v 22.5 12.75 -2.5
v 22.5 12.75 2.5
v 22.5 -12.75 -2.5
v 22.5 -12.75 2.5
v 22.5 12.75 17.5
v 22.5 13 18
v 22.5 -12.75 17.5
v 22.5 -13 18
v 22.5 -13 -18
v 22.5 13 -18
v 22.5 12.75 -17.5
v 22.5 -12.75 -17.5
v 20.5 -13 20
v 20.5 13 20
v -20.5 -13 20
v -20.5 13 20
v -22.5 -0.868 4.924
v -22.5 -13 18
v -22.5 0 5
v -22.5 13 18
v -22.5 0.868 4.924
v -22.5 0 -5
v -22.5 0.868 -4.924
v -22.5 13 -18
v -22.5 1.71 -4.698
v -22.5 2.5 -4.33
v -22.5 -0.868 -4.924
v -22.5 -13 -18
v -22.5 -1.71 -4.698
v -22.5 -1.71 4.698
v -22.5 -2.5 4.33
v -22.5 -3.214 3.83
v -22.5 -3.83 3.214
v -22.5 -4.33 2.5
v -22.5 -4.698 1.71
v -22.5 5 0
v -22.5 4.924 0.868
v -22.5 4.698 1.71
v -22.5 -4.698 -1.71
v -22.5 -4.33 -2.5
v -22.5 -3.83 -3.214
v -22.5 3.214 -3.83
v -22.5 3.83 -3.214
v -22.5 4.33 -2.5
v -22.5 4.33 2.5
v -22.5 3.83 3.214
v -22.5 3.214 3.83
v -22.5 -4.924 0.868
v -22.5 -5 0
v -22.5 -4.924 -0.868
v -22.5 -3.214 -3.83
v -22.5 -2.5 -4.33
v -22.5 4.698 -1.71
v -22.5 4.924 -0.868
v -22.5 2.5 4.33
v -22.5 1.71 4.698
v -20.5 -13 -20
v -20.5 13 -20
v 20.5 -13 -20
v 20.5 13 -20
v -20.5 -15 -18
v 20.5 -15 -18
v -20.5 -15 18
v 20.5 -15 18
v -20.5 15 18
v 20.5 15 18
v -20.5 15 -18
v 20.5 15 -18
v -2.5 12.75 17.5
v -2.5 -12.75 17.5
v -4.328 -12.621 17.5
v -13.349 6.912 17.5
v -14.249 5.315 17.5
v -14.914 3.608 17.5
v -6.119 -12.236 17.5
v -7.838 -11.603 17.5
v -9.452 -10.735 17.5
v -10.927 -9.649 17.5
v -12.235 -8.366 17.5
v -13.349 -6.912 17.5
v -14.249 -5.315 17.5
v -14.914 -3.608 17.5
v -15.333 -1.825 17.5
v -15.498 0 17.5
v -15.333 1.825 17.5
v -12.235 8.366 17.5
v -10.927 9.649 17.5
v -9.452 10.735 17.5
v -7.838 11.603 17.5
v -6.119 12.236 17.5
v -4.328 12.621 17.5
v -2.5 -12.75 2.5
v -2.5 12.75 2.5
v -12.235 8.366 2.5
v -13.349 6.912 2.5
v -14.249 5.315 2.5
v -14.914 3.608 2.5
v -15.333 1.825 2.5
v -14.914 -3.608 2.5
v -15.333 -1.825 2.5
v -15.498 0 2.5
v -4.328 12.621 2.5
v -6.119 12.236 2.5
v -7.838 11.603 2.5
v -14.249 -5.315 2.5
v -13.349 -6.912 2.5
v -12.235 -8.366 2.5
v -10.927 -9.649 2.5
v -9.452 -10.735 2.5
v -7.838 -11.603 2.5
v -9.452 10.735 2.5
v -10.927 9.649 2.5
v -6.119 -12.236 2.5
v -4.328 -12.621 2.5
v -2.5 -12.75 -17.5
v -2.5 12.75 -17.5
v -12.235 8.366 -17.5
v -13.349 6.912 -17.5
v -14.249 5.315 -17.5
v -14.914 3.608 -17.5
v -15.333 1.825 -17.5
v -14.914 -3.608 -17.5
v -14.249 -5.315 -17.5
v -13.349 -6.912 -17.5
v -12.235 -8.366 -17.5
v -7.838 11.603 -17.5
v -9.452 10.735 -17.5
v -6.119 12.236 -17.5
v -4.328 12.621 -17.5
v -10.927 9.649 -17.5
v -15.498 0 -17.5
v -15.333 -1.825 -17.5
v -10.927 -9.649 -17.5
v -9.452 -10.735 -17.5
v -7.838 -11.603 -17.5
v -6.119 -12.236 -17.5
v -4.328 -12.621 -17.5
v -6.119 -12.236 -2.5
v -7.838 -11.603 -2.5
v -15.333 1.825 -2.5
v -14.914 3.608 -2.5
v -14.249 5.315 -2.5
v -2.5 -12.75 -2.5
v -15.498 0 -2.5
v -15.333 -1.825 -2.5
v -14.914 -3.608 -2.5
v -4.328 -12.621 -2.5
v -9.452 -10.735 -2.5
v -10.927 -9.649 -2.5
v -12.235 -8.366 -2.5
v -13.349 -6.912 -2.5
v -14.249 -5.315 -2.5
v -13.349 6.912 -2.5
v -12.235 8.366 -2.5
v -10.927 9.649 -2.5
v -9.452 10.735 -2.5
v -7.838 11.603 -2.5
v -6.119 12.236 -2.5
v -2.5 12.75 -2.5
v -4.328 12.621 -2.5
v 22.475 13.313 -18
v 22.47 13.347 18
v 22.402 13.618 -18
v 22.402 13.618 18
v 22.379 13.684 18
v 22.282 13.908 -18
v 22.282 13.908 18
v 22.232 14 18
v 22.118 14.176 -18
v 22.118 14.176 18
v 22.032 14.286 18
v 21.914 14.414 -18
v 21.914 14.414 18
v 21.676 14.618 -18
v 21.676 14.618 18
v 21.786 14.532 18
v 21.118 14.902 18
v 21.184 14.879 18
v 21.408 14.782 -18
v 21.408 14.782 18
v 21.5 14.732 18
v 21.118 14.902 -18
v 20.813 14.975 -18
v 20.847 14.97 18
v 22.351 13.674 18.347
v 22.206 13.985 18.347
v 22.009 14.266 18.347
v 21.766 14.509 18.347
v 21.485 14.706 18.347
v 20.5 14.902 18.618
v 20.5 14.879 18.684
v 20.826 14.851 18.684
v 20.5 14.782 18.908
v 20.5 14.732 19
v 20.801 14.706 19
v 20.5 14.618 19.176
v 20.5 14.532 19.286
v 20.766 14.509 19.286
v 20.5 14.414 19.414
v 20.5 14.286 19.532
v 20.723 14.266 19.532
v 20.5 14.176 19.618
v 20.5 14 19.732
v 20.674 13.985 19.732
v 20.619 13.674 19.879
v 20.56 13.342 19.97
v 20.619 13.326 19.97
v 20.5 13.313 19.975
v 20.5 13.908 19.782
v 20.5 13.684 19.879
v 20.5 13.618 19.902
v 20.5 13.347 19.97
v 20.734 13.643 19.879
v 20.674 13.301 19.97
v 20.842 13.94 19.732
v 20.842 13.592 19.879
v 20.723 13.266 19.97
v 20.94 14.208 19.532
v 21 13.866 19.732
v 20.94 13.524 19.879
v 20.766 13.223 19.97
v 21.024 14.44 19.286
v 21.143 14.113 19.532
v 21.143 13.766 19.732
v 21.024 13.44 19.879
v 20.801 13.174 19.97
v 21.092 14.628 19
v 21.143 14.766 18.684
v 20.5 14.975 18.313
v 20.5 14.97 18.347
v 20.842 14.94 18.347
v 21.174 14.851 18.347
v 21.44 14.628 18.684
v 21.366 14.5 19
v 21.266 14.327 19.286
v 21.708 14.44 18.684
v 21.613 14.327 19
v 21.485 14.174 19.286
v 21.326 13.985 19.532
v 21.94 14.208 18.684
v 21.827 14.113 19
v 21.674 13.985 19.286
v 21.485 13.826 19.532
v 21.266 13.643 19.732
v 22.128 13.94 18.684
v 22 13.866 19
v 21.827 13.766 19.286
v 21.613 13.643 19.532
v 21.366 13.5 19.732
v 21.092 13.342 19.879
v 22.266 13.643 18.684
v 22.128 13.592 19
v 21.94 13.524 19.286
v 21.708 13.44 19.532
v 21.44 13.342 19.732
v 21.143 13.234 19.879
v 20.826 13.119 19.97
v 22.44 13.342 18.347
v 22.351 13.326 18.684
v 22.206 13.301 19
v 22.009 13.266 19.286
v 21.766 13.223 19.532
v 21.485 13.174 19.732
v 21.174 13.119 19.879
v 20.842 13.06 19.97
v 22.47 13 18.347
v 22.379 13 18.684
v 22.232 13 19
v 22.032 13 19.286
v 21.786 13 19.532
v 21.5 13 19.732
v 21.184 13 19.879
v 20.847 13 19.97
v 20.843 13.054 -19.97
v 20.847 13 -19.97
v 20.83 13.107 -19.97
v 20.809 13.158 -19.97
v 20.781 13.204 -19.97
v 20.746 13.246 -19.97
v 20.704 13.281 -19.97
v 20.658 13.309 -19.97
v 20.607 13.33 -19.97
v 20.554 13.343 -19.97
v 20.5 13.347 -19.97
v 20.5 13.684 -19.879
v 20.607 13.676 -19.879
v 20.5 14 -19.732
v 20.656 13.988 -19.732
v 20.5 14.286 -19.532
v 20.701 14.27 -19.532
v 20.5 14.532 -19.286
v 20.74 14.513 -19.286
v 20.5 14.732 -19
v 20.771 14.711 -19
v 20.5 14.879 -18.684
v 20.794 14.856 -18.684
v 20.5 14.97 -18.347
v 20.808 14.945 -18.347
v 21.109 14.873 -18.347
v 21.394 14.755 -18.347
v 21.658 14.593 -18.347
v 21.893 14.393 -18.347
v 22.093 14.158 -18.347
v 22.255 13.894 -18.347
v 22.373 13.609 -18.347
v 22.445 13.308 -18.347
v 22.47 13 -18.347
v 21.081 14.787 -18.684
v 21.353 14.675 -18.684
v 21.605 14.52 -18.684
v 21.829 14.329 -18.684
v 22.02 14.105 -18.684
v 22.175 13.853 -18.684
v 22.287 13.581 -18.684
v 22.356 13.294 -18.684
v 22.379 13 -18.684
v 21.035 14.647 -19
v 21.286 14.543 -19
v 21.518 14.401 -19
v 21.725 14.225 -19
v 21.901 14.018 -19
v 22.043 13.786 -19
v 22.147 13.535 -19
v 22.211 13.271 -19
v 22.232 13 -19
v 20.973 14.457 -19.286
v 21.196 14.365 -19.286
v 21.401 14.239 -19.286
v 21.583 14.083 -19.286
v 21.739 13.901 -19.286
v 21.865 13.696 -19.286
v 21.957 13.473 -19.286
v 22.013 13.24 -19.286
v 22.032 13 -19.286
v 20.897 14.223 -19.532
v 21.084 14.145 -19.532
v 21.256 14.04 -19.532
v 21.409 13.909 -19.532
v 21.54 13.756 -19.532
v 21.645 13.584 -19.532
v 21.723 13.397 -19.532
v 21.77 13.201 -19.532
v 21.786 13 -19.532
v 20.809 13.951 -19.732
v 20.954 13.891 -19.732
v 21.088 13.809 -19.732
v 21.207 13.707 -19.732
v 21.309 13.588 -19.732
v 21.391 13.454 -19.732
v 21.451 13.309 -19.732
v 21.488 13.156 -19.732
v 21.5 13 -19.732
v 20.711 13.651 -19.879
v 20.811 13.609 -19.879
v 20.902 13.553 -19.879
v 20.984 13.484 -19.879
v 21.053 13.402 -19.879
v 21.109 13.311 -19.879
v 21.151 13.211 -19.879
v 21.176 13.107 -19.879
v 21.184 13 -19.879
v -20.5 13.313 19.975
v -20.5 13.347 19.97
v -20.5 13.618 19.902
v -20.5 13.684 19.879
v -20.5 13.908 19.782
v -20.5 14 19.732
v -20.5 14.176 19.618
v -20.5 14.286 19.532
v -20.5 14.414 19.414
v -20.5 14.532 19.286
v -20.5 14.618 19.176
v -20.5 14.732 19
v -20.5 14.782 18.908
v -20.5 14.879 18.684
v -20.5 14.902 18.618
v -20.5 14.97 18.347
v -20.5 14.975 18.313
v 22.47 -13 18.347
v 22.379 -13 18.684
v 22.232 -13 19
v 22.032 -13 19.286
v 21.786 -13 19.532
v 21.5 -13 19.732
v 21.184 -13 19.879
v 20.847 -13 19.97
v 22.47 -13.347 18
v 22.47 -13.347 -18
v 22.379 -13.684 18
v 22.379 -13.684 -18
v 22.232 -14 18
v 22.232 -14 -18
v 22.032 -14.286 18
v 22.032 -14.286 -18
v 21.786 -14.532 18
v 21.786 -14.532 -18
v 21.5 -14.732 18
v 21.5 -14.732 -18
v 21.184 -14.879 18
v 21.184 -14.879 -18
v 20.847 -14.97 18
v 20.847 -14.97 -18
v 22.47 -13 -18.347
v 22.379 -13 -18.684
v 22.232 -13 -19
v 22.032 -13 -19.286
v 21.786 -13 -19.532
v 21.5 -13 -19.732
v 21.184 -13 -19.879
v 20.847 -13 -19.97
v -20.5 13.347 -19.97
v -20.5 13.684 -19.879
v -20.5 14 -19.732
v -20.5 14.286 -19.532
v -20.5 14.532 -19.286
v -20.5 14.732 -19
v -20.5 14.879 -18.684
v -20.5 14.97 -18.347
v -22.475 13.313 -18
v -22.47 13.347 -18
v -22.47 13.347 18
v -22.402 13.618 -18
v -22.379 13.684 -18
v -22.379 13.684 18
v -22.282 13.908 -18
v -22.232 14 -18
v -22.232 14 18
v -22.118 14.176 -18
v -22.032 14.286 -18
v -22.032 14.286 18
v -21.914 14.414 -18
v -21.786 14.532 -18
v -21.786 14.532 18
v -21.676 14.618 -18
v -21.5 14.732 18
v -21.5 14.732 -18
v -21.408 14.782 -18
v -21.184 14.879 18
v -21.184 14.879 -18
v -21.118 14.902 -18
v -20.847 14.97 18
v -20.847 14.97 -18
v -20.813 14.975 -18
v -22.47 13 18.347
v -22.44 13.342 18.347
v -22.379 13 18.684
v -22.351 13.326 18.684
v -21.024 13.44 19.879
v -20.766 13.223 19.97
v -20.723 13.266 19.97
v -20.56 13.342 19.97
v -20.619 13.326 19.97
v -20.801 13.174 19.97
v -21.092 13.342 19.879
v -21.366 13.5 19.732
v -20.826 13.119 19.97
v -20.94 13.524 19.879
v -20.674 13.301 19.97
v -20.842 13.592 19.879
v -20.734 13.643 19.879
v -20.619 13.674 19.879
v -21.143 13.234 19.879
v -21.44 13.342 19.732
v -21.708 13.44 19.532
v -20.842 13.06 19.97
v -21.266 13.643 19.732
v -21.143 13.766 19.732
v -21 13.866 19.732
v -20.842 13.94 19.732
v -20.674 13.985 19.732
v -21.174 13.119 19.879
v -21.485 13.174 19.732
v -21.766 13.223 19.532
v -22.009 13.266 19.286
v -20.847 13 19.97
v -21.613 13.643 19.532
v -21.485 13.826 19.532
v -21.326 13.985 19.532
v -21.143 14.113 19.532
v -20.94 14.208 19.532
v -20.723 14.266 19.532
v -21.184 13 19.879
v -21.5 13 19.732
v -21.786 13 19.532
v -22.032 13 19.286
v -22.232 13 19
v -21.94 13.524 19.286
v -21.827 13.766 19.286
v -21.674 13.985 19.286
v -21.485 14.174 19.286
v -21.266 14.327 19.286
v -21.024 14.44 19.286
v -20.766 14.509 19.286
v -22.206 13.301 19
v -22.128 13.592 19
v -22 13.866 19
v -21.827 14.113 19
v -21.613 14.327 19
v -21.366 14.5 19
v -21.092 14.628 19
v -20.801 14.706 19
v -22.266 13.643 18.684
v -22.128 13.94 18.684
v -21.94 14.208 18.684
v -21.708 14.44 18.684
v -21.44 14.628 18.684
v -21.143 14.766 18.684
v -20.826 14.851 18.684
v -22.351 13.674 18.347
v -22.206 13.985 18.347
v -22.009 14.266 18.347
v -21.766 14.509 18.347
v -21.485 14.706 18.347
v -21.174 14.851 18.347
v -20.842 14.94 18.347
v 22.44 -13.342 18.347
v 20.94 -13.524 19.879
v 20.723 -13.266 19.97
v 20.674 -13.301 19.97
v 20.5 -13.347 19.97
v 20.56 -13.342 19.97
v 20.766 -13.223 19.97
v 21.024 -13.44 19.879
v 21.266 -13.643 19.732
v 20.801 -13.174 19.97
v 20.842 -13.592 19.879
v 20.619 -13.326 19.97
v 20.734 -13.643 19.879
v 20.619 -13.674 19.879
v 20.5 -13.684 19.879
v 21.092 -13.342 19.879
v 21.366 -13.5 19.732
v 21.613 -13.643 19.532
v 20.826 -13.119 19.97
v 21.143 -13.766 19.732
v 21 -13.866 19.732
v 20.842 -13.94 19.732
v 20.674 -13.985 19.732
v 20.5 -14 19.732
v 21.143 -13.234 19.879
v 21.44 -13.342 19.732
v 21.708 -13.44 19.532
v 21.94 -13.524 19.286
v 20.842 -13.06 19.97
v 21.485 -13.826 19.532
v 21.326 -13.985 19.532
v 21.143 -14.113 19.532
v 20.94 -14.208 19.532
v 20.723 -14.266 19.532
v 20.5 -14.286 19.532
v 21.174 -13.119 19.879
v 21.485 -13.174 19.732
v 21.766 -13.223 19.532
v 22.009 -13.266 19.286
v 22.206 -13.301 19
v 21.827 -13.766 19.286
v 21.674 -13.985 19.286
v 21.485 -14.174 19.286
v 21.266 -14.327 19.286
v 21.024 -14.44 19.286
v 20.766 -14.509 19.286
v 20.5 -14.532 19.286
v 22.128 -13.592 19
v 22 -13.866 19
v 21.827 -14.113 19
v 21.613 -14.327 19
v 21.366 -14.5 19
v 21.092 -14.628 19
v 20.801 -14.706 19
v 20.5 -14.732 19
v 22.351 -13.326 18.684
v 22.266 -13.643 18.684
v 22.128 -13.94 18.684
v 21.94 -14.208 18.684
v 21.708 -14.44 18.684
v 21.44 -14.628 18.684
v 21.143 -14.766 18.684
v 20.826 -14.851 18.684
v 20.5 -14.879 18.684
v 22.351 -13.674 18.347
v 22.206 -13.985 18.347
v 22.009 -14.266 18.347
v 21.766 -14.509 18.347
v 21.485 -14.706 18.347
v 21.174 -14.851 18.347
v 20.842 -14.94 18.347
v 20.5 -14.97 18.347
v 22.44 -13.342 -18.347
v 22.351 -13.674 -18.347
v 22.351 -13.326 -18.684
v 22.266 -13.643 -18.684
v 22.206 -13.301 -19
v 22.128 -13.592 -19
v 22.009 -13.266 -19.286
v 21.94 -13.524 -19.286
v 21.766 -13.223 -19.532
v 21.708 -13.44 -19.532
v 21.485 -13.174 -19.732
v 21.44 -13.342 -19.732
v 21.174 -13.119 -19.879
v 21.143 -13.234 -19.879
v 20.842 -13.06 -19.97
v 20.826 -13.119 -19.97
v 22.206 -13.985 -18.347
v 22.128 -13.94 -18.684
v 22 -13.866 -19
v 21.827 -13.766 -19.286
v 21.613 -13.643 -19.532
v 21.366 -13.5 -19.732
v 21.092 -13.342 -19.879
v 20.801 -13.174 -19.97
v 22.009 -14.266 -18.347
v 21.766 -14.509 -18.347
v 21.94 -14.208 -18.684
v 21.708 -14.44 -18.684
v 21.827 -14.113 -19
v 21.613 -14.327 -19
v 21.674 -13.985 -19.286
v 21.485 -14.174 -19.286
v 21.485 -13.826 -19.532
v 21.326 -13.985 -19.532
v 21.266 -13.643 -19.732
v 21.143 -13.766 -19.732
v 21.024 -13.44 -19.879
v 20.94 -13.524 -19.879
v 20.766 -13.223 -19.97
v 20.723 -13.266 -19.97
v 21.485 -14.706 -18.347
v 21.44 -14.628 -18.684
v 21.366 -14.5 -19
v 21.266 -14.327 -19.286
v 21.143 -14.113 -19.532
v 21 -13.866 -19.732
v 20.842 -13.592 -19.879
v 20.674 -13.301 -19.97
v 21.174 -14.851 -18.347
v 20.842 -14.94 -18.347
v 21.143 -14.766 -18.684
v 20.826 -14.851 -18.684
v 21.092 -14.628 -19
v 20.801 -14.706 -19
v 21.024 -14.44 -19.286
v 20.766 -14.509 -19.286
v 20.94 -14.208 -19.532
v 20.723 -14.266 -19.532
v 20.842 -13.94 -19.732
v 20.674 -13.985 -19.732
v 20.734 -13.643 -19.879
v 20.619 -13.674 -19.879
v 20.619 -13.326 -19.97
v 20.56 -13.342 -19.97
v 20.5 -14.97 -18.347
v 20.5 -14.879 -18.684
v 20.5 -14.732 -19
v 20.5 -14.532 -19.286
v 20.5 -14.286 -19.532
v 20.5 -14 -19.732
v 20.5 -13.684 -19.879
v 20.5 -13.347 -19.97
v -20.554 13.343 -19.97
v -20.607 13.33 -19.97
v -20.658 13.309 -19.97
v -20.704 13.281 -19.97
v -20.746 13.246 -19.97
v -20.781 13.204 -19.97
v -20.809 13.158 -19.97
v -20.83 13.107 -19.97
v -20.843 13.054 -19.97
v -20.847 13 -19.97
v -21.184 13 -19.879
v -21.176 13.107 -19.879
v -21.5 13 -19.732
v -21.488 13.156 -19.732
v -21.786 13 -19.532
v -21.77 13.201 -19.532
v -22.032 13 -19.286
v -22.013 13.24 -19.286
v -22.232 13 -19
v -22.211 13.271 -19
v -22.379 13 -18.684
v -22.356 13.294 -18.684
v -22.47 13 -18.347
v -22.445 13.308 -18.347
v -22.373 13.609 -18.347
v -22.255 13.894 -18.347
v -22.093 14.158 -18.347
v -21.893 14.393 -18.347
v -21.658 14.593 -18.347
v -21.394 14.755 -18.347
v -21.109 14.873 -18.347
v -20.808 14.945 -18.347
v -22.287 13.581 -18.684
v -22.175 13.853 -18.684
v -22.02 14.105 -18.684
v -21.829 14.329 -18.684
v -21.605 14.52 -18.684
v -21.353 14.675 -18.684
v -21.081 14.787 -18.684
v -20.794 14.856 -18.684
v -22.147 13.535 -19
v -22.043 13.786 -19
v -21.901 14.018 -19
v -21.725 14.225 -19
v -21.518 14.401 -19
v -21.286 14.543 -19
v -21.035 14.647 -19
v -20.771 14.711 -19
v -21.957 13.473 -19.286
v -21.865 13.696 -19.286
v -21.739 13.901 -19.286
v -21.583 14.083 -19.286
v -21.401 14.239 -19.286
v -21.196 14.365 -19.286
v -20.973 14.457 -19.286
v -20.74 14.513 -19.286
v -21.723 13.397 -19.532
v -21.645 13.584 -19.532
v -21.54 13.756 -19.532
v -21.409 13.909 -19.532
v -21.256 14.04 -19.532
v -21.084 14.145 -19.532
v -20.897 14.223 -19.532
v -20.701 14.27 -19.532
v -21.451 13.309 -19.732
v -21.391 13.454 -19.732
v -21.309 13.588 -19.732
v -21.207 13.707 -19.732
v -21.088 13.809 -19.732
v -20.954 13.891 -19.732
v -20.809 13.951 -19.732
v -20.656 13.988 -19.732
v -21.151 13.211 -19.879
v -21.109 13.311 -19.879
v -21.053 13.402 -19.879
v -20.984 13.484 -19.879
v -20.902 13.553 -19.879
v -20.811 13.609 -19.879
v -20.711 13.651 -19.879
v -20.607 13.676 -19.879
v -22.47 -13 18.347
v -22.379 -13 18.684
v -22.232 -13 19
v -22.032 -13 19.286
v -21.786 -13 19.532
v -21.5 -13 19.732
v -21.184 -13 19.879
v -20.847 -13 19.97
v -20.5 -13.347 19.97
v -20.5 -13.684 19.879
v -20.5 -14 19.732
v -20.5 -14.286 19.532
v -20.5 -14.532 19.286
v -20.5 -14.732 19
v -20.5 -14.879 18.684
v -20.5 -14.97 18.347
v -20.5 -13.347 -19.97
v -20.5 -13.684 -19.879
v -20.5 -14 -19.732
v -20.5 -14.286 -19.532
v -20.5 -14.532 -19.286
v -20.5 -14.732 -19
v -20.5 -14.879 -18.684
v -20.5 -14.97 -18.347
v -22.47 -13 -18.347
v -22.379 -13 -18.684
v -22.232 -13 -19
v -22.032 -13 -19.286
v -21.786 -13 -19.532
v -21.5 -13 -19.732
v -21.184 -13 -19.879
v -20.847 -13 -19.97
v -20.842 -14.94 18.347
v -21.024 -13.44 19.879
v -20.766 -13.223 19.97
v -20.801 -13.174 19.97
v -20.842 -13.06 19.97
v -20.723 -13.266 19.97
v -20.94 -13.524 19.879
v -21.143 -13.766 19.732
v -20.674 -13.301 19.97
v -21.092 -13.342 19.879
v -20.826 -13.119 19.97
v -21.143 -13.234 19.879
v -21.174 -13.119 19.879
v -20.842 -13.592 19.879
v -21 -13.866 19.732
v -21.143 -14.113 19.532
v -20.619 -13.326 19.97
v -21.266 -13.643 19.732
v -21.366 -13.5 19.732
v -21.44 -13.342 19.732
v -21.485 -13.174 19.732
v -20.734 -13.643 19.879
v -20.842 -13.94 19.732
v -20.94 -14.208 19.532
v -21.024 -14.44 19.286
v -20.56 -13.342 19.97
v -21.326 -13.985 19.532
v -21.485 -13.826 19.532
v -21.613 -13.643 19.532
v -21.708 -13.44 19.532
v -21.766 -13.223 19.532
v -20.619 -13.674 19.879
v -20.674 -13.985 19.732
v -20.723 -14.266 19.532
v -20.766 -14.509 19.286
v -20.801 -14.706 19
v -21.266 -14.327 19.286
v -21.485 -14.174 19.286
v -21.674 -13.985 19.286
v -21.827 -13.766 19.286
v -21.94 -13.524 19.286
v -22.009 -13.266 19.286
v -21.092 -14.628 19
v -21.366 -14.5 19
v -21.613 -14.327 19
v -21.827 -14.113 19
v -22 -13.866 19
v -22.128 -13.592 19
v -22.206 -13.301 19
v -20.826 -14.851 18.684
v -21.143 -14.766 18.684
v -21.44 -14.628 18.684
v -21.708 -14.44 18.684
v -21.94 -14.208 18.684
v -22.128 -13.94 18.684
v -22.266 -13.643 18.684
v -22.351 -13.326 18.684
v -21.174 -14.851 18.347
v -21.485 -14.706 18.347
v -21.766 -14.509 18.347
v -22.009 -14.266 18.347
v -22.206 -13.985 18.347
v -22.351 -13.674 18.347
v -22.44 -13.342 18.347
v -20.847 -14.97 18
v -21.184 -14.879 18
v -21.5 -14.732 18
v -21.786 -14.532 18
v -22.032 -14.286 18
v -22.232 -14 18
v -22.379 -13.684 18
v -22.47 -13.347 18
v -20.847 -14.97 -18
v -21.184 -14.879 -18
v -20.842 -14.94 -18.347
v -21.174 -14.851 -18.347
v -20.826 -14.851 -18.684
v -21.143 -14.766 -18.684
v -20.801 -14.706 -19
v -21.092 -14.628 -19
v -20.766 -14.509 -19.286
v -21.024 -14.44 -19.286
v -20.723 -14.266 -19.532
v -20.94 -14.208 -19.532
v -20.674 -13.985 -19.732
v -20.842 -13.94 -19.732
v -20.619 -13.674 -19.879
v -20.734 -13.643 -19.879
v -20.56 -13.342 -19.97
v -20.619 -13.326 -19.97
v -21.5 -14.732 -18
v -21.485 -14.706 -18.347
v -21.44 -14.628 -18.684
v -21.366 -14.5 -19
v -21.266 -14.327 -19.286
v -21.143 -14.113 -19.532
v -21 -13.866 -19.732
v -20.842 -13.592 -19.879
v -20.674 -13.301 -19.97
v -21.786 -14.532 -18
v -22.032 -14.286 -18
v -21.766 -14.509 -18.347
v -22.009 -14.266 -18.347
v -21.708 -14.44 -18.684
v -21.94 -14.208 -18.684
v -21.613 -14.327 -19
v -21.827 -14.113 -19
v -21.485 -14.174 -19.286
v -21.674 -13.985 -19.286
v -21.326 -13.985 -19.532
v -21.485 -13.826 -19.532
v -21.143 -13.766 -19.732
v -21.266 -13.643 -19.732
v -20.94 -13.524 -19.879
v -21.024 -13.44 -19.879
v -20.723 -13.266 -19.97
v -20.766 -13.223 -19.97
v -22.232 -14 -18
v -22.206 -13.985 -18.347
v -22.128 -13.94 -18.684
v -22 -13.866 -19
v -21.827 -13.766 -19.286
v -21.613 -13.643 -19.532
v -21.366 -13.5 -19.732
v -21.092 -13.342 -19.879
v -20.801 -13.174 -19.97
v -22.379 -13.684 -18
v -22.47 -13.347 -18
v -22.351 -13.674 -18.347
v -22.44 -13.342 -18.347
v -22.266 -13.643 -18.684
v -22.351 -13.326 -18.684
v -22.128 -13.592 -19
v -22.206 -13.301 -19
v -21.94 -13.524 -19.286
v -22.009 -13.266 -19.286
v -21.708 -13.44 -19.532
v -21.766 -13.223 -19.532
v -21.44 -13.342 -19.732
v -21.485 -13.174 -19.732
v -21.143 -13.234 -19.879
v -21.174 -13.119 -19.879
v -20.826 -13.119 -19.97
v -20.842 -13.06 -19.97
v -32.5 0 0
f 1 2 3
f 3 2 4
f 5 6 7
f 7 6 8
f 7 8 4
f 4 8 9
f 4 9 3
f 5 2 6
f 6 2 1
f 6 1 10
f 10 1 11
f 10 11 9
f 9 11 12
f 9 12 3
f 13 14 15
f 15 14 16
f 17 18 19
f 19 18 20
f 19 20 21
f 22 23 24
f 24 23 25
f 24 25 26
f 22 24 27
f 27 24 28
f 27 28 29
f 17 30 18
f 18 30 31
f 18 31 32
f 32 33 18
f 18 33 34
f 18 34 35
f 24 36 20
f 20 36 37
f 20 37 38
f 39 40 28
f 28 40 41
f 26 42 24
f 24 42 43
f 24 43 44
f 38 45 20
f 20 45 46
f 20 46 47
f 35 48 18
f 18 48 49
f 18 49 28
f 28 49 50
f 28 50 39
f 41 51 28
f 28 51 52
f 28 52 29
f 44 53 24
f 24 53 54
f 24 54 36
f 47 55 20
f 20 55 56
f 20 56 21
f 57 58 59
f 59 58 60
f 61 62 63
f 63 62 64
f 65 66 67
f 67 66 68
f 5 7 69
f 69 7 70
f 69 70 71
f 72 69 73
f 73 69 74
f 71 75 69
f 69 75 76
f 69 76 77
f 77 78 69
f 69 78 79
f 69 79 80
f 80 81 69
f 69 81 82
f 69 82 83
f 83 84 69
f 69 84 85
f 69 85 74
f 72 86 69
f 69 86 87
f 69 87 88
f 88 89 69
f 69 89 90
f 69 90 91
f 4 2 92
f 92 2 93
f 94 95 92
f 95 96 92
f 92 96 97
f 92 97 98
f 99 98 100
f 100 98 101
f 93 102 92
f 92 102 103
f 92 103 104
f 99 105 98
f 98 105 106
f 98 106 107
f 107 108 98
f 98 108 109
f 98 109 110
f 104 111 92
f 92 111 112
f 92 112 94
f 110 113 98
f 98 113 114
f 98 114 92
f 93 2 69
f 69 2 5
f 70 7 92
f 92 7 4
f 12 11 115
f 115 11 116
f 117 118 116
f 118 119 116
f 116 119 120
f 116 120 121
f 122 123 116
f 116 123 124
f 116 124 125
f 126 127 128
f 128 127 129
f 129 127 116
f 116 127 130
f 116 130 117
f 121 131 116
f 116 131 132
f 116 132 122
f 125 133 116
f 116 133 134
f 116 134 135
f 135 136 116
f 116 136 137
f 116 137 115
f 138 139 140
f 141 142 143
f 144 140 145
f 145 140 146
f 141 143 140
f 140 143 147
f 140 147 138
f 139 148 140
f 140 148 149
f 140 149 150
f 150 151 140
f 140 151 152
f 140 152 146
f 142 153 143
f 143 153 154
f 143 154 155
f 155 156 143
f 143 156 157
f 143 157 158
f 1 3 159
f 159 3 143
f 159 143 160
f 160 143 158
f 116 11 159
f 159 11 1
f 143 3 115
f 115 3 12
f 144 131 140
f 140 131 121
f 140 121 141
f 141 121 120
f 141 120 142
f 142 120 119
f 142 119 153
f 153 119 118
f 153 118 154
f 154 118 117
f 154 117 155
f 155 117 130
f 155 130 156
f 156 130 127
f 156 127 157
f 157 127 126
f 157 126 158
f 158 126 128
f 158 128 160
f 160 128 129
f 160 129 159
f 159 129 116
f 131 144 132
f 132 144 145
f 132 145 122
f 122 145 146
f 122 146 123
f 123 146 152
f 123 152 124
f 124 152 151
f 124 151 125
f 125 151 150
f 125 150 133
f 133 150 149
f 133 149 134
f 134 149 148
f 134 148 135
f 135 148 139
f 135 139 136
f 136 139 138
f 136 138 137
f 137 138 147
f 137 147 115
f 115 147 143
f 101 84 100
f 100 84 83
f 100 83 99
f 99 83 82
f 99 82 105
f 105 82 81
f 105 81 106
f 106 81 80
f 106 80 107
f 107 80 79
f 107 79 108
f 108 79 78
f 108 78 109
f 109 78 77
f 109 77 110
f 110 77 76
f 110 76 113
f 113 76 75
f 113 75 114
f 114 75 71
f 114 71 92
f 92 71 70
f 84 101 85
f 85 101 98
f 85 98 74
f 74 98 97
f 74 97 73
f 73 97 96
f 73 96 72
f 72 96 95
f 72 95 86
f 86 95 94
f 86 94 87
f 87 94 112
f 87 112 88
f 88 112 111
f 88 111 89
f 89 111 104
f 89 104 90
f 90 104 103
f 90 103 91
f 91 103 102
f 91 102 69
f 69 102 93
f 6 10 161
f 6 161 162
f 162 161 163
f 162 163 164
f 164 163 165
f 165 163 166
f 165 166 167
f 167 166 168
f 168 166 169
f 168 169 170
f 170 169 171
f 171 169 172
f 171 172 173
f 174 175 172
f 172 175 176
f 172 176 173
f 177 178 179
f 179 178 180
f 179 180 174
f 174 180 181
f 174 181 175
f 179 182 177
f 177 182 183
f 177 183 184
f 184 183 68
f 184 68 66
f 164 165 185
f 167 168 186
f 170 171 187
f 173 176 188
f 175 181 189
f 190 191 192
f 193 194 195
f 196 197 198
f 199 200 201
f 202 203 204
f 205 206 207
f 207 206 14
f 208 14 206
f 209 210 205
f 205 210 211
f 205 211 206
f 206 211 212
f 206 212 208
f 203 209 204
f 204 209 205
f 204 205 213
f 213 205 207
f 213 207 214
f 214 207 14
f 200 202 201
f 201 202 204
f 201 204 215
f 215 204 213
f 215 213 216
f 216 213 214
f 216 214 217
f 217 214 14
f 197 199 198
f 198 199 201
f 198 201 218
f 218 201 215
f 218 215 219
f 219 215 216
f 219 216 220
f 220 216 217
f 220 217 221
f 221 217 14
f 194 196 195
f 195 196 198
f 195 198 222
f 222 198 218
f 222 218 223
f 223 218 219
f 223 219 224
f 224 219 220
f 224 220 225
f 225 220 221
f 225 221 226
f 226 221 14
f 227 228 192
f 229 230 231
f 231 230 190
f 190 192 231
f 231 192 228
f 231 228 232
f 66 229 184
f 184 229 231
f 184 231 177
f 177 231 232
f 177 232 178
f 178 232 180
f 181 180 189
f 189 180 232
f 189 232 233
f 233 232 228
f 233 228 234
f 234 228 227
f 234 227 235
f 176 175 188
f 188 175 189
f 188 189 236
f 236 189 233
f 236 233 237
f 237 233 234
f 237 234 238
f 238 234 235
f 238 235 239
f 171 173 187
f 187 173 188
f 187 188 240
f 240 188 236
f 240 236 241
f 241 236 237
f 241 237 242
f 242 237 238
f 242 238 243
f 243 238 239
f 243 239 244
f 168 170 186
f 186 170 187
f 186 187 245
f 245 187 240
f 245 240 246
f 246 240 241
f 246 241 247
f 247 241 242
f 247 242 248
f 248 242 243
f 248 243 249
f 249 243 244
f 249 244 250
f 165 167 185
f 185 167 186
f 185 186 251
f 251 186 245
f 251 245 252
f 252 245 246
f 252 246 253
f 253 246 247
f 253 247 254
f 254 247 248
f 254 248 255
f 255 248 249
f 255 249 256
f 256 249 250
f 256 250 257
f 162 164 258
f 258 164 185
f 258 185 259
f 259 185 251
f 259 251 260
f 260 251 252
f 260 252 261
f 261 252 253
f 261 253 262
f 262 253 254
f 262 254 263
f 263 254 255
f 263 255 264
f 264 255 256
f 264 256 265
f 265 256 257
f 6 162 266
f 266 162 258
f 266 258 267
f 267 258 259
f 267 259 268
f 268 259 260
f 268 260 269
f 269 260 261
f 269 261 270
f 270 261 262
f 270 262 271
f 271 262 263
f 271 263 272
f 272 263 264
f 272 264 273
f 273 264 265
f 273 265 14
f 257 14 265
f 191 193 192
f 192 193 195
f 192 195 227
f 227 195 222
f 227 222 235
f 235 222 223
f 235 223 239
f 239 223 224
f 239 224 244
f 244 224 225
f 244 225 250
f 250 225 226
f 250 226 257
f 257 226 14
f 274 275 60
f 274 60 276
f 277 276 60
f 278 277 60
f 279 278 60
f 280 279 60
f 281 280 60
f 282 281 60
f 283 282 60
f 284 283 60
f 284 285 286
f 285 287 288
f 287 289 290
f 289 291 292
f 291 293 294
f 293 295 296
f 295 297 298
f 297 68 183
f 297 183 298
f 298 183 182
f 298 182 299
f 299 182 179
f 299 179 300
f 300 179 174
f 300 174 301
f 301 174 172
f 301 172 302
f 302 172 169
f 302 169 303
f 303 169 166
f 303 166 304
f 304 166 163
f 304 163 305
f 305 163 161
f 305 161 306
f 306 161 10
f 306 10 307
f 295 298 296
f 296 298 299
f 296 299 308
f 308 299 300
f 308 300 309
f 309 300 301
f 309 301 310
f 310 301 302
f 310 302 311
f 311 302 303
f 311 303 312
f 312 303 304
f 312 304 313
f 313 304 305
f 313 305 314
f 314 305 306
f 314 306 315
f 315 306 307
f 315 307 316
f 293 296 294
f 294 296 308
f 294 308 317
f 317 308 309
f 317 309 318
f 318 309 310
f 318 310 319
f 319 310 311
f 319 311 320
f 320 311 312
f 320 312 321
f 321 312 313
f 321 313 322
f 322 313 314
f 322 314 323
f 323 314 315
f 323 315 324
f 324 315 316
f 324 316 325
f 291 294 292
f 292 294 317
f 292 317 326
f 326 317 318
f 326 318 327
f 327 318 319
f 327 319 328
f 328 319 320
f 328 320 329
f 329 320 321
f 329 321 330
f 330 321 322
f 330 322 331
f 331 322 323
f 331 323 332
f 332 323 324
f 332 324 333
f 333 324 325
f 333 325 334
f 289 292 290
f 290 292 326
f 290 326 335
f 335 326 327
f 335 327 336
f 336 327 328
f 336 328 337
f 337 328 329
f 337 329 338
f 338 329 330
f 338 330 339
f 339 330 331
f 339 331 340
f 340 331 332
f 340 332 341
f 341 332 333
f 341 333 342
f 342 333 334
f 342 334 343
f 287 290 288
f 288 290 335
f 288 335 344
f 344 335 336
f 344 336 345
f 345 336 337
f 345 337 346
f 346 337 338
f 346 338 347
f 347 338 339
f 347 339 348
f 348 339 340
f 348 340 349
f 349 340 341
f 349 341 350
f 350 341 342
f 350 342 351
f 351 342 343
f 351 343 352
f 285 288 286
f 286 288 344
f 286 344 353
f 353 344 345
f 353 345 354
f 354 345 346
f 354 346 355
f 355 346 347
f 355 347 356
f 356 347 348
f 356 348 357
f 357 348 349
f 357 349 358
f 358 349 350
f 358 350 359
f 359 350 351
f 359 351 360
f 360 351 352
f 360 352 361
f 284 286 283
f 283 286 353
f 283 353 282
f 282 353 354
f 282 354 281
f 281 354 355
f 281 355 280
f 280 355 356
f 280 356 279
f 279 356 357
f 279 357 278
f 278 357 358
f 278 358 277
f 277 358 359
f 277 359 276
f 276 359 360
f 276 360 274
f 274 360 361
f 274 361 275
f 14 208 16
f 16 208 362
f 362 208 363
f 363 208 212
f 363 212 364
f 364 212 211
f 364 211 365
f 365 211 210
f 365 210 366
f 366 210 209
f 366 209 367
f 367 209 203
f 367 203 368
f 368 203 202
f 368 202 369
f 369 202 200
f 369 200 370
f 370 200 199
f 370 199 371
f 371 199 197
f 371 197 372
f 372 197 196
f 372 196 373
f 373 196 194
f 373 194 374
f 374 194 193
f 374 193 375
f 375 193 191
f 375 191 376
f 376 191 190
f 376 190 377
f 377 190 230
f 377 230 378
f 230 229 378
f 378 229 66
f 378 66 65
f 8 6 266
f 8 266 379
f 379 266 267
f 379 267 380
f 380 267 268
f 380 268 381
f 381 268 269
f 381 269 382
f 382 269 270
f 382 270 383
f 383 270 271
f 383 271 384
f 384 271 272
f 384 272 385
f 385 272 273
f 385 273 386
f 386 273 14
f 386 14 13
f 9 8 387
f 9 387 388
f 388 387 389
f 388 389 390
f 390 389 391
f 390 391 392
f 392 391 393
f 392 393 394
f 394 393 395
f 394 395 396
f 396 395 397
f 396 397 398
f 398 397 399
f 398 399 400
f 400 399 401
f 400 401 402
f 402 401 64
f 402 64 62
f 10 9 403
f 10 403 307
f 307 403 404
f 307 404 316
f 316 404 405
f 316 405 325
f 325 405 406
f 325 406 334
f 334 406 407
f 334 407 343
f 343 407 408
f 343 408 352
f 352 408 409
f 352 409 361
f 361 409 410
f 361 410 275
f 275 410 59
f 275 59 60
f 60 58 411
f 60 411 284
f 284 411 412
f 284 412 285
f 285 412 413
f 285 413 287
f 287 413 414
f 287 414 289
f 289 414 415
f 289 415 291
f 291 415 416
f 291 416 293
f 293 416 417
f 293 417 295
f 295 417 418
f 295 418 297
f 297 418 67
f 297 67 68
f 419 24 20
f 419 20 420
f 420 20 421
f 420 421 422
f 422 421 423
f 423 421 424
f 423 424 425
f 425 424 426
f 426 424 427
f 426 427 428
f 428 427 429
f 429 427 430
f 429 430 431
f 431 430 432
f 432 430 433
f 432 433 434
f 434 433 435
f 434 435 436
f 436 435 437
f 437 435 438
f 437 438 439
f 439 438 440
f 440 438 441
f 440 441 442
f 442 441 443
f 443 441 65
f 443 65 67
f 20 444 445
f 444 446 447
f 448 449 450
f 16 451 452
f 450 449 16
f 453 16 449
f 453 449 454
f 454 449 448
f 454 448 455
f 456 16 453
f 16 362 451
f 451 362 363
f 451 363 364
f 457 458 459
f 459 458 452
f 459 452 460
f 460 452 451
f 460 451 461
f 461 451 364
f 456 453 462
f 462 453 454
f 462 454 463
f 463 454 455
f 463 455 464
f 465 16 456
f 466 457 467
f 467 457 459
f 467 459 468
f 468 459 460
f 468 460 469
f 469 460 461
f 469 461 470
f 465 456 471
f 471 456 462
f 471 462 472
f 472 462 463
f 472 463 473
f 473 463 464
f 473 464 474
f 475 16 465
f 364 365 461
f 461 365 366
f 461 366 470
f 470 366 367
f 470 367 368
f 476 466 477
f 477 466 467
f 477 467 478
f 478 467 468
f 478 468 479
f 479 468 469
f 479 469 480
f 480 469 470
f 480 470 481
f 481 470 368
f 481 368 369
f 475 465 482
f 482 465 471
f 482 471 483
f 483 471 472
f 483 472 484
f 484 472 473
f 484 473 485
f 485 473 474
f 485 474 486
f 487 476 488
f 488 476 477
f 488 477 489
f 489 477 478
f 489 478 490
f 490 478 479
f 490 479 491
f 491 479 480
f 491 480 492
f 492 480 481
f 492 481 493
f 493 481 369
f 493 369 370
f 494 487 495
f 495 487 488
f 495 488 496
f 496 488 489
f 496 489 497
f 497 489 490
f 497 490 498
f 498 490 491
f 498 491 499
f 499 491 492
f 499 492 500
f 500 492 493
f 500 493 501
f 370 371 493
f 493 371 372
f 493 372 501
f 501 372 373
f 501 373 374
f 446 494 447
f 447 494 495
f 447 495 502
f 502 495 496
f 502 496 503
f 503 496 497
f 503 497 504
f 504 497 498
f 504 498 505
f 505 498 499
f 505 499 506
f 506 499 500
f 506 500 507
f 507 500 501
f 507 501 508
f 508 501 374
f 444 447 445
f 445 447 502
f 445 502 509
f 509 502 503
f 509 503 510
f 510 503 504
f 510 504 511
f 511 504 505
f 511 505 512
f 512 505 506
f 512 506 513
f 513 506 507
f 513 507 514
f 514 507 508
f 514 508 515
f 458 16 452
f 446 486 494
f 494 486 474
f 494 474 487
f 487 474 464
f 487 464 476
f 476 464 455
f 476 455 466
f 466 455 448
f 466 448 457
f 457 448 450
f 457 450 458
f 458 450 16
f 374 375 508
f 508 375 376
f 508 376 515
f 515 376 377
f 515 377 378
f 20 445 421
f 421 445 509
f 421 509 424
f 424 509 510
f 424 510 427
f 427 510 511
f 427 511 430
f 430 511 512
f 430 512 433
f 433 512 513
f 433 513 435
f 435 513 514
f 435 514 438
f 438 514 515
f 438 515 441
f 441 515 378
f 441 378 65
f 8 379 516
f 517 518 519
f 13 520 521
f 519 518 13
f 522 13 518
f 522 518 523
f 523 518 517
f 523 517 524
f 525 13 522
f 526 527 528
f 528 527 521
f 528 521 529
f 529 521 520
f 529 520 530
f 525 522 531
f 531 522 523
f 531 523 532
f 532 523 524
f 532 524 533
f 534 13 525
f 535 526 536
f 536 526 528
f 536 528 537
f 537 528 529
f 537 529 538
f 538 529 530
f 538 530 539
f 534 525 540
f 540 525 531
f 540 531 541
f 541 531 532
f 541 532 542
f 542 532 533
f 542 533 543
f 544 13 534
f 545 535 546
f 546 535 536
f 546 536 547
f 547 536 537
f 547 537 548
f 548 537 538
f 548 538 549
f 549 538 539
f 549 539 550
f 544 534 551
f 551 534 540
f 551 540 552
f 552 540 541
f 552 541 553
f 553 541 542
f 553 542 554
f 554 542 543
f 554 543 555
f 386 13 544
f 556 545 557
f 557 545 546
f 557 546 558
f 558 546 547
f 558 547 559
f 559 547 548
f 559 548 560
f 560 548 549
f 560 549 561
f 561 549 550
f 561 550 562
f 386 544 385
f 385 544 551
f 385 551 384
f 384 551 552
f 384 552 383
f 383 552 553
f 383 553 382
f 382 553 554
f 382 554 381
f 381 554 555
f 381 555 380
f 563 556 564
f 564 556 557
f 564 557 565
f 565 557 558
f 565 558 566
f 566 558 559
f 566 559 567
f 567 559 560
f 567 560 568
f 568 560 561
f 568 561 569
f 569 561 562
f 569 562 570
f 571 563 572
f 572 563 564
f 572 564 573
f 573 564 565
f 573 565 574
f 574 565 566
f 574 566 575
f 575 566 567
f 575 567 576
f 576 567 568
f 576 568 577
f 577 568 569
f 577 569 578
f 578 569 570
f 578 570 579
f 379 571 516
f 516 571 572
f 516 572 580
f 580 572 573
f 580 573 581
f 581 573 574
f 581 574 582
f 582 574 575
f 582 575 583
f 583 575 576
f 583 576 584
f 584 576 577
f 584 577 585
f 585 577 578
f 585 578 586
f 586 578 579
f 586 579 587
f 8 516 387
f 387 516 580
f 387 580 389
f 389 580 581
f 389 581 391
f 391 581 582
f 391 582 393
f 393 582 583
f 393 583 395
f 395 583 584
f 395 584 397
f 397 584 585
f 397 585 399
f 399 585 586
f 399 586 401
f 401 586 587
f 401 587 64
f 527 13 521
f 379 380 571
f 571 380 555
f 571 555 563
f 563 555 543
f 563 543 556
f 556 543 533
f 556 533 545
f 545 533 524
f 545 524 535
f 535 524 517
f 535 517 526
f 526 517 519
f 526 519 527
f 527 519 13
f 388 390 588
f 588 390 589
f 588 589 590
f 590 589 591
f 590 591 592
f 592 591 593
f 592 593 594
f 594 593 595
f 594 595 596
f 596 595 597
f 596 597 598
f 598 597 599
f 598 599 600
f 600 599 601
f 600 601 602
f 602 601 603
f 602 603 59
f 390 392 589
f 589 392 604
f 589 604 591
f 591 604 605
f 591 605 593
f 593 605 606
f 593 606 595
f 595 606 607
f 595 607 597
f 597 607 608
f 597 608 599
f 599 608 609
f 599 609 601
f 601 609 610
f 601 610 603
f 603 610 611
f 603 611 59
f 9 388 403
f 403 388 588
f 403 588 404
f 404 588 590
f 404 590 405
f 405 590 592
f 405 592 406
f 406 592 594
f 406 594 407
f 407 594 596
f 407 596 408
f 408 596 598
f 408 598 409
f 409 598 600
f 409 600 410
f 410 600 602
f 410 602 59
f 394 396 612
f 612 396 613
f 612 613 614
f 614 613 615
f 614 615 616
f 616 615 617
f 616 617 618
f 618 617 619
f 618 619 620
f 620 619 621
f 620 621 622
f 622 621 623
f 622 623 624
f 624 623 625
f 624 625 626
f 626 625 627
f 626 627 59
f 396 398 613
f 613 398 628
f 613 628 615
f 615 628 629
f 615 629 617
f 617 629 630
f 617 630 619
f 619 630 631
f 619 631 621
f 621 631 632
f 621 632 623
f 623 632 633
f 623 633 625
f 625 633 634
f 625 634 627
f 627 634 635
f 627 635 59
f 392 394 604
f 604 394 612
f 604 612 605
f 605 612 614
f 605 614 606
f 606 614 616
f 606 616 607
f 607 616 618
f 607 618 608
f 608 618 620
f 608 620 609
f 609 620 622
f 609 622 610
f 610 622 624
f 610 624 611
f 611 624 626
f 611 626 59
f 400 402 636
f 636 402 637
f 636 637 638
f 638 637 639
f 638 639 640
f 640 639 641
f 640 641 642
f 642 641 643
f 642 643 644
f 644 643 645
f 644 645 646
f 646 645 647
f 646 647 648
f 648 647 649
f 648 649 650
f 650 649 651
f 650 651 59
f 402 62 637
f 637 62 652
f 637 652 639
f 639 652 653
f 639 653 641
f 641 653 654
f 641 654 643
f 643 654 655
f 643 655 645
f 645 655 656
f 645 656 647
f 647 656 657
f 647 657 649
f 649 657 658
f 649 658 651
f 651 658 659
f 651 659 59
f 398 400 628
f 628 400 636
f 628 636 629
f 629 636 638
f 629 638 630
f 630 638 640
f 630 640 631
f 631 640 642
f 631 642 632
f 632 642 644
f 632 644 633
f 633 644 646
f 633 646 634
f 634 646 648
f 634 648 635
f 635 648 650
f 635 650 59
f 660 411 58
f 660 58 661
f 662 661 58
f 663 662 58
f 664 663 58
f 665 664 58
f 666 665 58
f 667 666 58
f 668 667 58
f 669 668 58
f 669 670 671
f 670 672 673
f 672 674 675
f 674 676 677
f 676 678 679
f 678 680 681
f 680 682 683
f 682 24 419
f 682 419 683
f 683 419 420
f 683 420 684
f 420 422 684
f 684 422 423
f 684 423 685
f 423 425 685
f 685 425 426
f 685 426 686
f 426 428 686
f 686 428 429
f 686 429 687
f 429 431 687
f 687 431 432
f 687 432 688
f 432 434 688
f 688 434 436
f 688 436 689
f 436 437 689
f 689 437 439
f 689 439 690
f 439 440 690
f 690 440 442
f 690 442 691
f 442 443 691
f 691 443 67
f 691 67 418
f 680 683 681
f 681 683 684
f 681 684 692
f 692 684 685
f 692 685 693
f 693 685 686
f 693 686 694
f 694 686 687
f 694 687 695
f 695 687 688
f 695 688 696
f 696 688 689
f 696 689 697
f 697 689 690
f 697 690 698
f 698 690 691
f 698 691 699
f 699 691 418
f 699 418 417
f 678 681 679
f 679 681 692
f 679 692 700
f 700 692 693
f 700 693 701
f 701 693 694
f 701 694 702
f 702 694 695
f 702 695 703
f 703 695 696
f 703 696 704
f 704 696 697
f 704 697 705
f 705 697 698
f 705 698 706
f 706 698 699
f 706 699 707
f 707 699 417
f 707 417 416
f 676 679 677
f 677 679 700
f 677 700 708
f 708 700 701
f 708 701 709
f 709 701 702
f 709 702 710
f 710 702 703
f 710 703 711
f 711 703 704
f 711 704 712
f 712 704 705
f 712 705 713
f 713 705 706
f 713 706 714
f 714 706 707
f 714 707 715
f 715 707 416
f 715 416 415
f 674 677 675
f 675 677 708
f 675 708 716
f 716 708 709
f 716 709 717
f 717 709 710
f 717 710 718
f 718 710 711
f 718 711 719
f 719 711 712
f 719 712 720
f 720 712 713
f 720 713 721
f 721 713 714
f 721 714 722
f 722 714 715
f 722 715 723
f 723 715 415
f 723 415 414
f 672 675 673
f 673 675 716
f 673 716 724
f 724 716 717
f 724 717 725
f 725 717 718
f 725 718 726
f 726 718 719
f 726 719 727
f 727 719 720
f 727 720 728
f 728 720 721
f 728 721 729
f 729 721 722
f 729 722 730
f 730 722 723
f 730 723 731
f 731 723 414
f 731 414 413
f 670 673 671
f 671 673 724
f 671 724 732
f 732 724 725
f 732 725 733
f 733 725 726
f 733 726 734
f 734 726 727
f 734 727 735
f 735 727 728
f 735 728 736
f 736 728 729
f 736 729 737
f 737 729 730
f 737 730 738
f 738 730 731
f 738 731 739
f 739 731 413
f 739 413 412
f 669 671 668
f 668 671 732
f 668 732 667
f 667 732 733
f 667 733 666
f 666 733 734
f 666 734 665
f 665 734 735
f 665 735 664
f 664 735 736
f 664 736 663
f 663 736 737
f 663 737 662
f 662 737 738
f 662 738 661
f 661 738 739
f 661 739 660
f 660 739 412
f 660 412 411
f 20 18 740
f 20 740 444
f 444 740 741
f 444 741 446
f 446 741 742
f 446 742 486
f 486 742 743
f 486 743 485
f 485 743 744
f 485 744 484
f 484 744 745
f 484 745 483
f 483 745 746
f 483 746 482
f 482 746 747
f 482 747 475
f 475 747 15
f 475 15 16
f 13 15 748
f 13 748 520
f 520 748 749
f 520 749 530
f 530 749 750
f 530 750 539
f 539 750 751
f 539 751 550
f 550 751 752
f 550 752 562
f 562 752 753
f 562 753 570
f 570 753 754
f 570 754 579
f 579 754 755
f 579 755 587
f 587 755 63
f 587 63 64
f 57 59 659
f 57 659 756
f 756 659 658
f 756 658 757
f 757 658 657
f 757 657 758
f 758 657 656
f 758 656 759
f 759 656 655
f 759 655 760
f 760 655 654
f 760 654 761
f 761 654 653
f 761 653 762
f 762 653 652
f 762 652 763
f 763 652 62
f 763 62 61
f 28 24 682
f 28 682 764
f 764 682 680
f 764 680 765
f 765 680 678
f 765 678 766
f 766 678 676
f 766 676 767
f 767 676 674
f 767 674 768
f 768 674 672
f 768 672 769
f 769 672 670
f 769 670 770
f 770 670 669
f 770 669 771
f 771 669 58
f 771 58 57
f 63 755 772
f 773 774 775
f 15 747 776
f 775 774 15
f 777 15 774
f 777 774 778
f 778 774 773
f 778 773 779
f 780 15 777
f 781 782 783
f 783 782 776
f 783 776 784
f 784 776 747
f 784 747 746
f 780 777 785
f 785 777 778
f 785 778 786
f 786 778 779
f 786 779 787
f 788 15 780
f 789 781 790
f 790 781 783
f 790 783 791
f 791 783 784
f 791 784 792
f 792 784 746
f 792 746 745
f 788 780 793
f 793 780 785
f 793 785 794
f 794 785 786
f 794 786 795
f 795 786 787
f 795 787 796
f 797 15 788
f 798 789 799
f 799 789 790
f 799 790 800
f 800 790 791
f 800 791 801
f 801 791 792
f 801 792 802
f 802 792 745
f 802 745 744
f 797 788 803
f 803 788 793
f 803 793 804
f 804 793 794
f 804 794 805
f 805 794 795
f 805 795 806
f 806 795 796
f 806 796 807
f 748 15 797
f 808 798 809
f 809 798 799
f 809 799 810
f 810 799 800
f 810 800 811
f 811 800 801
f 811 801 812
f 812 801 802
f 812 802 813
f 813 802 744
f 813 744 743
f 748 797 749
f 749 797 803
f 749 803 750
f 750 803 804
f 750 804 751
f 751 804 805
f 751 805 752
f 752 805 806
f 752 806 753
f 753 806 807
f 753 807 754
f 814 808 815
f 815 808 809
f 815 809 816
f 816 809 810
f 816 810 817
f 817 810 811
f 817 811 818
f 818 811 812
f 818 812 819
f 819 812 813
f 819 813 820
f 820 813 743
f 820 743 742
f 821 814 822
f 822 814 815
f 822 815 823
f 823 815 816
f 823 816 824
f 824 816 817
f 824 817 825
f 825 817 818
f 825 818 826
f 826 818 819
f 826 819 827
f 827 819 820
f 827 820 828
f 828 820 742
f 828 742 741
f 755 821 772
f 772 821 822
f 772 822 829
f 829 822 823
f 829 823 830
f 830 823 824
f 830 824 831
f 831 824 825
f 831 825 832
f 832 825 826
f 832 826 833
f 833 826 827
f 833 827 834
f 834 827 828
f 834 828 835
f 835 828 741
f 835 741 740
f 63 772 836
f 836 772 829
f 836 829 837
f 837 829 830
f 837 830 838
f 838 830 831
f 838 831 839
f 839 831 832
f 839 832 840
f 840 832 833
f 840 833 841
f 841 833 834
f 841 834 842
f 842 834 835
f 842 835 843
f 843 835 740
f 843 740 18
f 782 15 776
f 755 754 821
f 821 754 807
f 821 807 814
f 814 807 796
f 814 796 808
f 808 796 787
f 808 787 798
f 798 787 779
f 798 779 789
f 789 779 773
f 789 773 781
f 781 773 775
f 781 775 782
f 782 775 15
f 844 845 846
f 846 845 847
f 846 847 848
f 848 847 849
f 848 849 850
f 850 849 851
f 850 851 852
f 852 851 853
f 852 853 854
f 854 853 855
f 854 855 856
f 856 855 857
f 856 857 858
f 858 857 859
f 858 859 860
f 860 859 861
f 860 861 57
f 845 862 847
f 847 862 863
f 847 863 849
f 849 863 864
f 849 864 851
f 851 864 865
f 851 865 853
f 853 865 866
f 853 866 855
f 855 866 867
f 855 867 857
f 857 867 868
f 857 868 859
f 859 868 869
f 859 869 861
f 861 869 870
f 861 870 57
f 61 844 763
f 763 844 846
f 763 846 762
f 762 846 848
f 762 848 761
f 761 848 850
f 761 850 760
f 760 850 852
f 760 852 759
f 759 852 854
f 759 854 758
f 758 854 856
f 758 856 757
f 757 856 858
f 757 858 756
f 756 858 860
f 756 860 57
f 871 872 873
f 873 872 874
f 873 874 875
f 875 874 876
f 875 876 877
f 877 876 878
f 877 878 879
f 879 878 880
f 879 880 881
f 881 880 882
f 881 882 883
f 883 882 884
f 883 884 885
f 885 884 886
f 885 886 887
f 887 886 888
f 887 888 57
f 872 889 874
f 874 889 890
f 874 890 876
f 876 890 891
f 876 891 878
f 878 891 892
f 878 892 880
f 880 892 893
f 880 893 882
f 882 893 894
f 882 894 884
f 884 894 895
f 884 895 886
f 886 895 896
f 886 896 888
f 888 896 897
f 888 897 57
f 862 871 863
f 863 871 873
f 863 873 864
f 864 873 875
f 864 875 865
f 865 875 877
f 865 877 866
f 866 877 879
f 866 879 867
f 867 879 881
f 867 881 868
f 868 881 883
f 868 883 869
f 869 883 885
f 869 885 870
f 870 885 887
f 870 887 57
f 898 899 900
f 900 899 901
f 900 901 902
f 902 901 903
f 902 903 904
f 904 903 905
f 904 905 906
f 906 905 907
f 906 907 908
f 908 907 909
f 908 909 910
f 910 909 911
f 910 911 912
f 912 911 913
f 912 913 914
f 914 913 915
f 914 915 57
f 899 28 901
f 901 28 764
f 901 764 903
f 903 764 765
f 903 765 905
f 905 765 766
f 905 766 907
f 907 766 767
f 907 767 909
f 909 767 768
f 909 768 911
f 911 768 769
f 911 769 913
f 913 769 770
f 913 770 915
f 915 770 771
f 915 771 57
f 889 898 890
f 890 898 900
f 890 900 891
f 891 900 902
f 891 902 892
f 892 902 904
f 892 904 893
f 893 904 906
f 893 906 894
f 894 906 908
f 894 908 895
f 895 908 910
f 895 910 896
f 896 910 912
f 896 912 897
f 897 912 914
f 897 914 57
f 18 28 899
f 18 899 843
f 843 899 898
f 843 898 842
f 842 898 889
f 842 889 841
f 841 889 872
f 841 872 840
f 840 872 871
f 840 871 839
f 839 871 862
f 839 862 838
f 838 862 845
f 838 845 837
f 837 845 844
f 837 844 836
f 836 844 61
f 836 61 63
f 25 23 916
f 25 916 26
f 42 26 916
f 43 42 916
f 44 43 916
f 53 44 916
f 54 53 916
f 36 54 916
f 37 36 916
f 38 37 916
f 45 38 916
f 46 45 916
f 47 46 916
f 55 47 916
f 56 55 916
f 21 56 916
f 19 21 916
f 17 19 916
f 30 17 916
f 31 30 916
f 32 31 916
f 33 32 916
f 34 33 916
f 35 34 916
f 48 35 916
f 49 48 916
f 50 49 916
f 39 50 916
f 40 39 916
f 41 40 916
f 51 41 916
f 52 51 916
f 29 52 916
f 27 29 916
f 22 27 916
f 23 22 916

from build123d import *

# Parameters (mm, degrees)
BOSS_EXTRUDE1_DEPTH      = 15
BOSS_EXTRUDE1_DEPTH_BACK = 15
SKETCH1_W                = 45
SKETCH1_H                = 40
CUT_EXTRUDE1_DEPTH       = 12.75
CUT_EXTRUDE1_DEPTH_BACK  = 12.75
SKETCH2_W                = 38
SKETCH2_H                = 15
FILLET1_R                = 13
FILLET2_R                = 2


with BuildPart() as part:
    # Sketch1 → Boss-Extrude1 (new, two sides: drawn at the far end of the back side and taken through both)
    with BuildSketch(Plane(origin=(0, 0, 0), x_dir=(1, 0, 0), z_dir=(0, 1, 0)).offset(-BOSS_EXTRUDE1_DEPTH_BACK)):
        Rectangle(SKETCH1_W, SKETCH1_H)
    extrude(amount=BOSS_EXTRUDE1_DEPTH + BOSS_EXTRUDE1_DEPTH_BACK)

    # Sketch2 → Cut-Extrude1 (cut, two sides: drawn at the far end of the back side and taken through both)
    with BuildSketch(Plane(origin=(0, 0, 0), x_dir=(1, 0, 0), z_dir=(0, 1, 0)).offset(-CUT_EXTRUDE1_DEPTH_BACK)):
        with Locations((3.5, 10)):
            Rectangle(SKETCH2_W, SKETCH2_H)
        with Locations((3.5, -10)):
            Rectangle(SKETCH2_W, SKETCH2_H)
    extrude(amount=CUT_EXTRUDE1_DEPTH + CUT_EXTRUDE1_DEPTH_BACK, mode=Mode.SUBTRACT)

    # Fillet1
    # the kernel refuses this fillet: 13 mm, written as the material it adds along each edge
    with BuildSketch(Plane(origin=(-15.5, -12.75, -17.5), x_dir=(1, 0, 0), z_dir=(0, 0, 1))) as fillet1_piece_1_section:
        with BuildLine():
            CenterArc((FILLET1_R, FILLET1_R), FILLET1_R, 180, 90)
            Line((0, FILLET1_R), (0, 0))
            Line((0, 0), (FILLET1_R, 0))
        make_face()
    fillet1_piece_1 = extrude(amount=47.5, mode=Mode.PRIVATE)
    fillet1_piece_1 = split(fillet1_piece_1, bisect_by=Plane(origin=(-12.596216794, -9.846216794, 17.5), z_dir=(0, 0, -1)), keep=Keep.TOP, mode=Mode.PRIVATE)
    add(fillet1_piece_1)
    with BuildSketch(Plane(origin=(-15.5, 12.75, -17.5), x_dir=(1, 0, 0), z_dir=(0, 0, 1))) as fillet1_piece_2_section:
        with BuildLine():
            CenterArc((FILLET1_R, -FILLET1_R), FILLET1_R, 90, 90)
            Line((0, -FILLET1_R), (0, 0))
            Line((0, 0), (FILLET1_R, 0))
        make_face()
    fillet1_piece_2 = extrude(amount=47.5, mode=Mode.PRIVATE)
    fillet1_piece_2 = split(fillet1_piece_2, bisect_by=Plane(origin=(-12.596216794, 9.846216794, 17.5), z_dir=(0, 0, -1)), keep=Keep.TOP, mode=Mode.PRIVATE)
    add(fillet1_piece_2)
    with BuildSketch(Plane(origin=(-15.5, 12.75, 17.5), x_dir=(1, 0, 0), z_dir=(0, 0, -1))) as fillet1_piece_3_section:
        with BuildLine():
            CenterArc((FILLET1_R, FILLET1_R), FILLET1_R, 180, 90)
            Line((0, FILLET1_R), (0, 0))
            Line((0, 0), (FILLET1_R, 0))
        make_face()
    fillet1_piece_3 = extrude(amount=47.5, mode=Mode.PRIVATE)
    fillet1_piece_3 = split(fillet1_piece_3, bisect_by=Plane(origin=(-12.596216794, 9.846216794, -17.5), z_dir=(0, 0, 1)), keep=Keep.TOP, mode=Mode.PRIVATE)
    add(fillet1_piece_3)
    with BuildSketch(Plane(origin=(-15.5, -12.75, 17.5), x_dir=(1, 0, 0), z_dir=(0, 0, -1))) as fillet1_piece_4_section:
        with BuildLine():
            CenterArc((FILLET1_R, -FILLET1_R), FILLET1_R, 90, 90)
            Line((0, -FILLET1_R), (0, 0))
            Line((0, 0), (FILLET1_R, 0))
        make_face()
    fillet1_piece_4 = extrude(amount=47.5, mode=Mode.PRIVATE)
    fillet1_piece_4 = split(fillet1_piece_4, bisect_by=Plane(origin=(-12.596216794, -9.846216794, -17.5), z_dir=(0, 0, 1)), keep=Keep.TOP, mode=Mode.PRIVATE)
    add(fillet1_piece_4)

    # Fillet2
    fillet2_edges = [part.edges().sort_by_distance(p)[0] for p in [
        (0, 15, -20),
        (-22.5, 15, 0),
        (0, 15, 20),
        (0, -15, -20),
        (22.5, 15, 0),
        (-22.5, -15, 0),
        (0, -15, 20),
        (-22.5, 0, 20),
        (-22.5, 0, -20),
        (22.5, 0, -20),
        (22.5, 0, 20),
        (22.5, -15, 0),
    ]]
    fillet(fillet2_edges, radius=FILLET2_R)

    # Sketch3 → Revolve1 (revolve)
    with BuildSketch(Plane(origin=(0, 0, 0), x_dir=(1, 0, 0), z_dir=(0, 1, 0))):
        Polygon((-22.5, 0), (-32.5, 0), (-22.5, 5), align=None)
    revolve(axis=Axis((-22.5, 0, 0), (-1, 0, 0)))


solid = part.part
